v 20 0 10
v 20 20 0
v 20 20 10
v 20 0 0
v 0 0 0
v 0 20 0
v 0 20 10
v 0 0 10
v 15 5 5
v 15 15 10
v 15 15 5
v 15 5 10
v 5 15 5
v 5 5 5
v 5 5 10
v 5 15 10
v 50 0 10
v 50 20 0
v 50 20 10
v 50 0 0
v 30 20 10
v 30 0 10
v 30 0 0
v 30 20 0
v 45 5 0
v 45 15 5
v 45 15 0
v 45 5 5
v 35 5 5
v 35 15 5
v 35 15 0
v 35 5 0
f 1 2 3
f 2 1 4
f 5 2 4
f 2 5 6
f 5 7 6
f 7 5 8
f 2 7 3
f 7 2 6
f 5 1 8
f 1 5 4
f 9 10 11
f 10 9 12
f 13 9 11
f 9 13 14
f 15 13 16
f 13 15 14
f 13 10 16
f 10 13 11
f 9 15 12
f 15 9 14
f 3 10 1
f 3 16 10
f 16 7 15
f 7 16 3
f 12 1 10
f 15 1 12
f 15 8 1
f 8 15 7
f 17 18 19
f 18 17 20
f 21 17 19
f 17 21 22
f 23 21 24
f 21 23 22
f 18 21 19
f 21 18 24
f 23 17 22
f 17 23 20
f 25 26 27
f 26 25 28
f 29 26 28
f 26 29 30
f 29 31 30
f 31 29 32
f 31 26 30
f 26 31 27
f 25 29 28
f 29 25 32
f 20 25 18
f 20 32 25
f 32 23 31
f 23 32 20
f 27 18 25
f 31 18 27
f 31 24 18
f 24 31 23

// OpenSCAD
module top_of(z) {
    difference() {
        children();
        translate([0,0,z]) cube([100,100,100]);
    }
}

module bottom_of(z) {
    translate([0,0,-z]) {
        difference() {
            children();
            cube([100,100,z]);
        }
    }
}



module shape() {
    difference() {
        cube([20,20,20]);
        translate([5,5,5]) cube([10,10,10]);
    }
}

top_of(10) shape();

translate([30,0,0]) bottom_of(10) shape();
